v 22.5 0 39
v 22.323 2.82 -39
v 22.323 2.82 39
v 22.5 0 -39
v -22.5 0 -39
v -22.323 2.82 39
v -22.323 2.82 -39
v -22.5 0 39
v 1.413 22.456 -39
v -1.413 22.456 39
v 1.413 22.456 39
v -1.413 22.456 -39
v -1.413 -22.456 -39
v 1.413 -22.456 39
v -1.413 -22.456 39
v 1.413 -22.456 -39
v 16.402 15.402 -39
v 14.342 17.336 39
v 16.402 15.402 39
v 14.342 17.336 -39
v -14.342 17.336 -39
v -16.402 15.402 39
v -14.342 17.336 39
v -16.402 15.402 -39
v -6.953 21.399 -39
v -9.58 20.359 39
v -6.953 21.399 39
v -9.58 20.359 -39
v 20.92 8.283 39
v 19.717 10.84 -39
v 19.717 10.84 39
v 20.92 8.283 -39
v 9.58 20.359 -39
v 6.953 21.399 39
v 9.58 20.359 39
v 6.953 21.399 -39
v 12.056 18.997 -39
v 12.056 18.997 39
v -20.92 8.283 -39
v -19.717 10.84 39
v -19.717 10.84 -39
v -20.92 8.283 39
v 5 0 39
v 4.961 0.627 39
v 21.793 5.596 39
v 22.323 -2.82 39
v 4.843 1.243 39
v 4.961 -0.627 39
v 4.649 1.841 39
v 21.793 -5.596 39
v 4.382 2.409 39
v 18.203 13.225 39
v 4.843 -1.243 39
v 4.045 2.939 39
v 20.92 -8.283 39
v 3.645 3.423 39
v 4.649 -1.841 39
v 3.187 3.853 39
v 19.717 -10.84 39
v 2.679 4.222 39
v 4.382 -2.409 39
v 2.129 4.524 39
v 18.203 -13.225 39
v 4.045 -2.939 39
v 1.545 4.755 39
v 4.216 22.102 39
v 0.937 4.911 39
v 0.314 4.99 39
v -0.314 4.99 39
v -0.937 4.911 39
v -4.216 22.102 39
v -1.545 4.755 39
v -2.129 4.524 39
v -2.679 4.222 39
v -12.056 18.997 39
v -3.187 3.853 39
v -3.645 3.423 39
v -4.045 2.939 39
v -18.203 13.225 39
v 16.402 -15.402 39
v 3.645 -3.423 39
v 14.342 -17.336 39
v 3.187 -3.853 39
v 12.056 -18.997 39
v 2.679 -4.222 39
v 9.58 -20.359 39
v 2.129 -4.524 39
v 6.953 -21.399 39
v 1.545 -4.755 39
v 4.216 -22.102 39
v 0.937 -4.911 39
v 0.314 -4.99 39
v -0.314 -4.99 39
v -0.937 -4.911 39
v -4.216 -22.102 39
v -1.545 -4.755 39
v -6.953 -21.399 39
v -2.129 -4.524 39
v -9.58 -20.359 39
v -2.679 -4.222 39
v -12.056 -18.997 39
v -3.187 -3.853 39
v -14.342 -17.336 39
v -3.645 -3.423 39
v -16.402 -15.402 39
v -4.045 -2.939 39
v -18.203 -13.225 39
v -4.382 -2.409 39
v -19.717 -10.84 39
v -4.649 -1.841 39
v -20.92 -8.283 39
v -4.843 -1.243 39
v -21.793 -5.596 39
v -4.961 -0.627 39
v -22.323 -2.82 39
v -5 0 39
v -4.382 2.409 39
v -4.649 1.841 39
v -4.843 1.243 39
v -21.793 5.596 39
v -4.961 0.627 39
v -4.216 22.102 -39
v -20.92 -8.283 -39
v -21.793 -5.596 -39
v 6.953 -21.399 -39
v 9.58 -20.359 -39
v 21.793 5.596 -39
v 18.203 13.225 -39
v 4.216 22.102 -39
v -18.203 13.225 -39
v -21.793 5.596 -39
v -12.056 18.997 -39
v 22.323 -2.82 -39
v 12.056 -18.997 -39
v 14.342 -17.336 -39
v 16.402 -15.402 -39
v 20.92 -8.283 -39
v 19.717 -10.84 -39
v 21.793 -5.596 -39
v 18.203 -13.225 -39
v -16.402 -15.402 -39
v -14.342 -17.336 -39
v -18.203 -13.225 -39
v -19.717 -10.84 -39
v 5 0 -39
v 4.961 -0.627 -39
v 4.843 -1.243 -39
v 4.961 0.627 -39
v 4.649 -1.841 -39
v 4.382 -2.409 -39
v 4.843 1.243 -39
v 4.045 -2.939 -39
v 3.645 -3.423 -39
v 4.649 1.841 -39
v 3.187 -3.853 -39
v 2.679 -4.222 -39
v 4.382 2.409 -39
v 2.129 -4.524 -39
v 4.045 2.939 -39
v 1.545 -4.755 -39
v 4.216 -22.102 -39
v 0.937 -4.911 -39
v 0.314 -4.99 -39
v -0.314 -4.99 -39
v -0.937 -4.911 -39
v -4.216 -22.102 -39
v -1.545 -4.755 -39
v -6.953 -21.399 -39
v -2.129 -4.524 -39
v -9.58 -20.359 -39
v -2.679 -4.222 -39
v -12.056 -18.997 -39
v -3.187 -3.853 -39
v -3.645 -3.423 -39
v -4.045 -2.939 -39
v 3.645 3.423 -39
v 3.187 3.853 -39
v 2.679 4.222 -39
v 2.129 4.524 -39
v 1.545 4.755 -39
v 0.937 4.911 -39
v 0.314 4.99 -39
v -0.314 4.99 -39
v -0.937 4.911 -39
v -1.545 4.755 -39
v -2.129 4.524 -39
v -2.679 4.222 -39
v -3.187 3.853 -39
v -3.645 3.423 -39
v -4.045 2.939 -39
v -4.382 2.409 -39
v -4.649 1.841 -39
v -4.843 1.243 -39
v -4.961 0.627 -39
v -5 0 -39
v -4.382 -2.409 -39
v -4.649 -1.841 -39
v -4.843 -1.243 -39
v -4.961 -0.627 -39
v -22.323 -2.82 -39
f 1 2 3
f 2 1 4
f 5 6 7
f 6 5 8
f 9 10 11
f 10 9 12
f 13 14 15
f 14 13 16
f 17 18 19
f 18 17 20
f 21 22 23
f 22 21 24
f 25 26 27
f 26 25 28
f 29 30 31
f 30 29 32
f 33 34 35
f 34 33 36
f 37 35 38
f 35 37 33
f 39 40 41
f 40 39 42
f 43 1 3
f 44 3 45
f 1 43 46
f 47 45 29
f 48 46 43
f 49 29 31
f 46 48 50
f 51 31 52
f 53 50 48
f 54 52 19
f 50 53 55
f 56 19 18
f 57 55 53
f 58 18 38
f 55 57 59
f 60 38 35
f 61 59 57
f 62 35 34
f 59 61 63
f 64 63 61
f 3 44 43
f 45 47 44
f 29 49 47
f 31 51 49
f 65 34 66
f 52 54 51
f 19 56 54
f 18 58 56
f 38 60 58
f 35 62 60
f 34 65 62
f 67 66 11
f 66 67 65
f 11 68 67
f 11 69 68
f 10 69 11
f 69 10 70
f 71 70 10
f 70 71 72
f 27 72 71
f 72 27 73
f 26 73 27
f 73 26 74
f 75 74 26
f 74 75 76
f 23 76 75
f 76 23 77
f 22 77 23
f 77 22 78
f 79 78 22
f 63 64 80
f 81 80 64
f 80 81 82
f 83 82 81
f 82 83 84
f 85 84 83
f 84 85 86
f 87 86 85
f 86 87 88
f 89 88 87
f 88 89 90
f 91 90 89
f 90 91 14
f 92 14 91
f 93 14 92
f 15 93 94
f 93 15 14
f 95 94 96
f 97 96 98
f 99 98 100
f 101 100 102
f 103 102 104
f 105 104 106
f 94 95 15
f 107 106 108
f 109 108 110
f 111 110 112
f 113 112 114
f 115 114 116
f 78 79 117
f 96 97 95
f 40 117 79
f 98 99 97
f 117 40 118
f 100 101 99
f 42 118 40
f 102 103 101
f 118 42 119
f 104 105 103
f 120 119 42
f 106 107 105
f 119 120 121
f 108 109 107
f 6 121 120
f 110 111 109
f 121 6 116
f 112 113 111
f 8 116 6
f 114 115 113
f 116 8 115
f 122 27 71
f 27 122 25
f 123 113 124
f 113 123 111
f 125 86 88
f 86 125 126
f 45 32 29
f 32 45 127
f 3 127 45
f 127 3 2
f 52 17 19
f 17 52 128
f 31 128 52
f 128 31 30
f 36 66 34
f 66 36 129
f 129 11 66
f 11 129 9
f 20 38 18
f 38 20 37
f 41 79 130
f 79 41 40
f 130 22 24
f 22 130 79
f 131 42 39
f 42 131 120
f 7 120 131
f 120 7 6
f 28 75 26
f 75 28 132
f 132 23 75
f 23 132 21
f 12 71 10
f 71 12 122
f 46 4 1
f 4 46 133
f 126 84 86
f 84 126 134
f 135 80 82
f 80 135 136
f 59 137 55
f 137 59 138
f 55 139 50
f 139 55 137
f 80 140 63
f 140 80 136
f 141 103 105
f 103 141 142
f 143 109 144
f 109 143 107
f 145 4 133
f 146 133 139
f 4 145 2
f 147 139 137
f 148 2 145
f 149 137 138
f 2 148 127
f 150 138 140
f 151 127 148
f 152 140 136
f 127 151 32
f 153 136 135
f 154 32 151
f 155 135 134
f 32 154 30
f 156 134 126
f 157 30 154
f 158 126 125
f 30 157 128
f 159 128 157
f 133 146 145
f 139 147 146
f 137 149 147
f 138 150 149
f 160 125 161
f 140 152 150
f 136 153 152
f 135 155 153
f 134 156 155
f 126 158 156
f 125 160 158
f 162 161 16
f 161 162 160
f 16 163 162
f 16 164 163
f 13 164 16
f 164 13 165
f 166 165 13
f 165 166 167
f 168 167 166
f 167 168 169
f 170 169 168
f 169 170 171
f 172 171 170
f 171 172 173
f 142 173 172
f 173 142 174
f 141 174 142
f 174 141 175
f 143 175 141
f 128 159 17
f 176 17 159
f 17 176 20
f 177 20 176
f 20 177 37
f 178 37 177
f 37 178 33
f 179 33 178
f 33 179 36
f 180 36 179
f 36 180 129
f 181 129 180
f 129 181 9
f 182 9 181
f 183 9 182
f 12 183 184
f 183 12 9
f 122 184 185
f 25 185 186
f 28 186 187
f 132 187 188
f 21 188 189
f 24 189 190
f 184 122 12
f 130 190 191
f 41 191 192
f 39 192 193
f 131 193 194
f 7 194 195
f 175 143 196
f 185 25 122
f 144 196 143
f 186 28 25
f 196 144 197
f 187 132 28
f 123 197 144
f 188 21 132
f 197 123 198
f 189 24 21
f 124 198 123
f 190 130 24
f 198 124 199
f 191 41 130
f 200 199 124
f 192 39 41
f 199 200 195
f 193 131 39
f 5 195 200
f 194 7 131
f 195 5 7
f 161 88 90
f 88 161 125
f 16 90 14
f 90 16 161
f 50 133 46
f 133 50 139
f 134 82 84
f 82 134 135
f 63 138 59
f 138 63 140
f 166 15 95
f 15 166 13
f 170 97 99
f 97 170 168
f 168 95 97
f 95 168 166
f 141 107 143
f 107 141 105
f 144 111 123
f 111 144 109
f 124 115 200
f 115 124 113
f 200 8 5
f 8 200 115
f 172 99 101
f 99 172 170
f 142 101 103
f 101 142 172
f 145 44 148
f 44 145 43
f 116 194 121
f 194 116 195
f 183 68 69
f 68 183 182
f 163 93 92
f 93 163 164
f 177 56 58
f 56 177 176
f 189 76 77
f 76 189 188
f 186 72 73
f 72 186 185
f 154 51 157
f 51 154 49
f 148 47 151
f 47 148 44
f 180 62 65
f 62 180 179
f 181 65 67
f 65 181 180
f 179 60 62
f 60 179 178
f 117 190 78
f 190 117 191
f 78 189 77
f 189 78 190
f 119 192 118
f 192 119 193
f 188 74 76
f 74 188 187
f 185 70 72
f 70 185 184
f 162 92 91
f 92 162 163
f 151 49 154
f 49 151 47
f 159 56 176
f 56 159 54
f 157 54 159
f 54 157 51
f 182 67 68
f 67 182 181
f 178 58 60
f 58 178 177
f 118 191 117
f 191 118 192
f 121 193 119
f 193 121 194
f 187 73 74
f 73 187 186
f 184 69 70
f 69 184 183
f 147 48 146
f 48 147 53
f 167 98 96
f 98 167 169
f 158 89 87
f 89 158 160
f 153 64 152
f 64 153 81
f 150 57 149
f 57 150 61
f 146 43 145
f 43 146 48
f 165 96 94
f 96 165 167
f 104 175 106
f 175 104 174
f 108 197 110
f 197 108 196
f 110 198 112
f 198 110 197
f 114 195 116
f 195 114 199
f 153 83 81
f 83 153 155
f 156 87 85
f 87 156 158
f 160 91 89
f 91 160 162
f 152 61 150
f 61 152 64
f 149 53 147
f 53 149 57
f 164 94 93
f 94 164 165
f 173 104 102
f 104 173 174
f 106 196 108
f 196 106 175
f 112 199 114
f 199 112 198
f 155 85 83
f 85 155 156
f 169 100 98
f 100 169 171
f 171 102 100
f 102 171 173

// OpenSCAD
$fn = 50;


difference() {
	union() {
		translate(v = [0, 0, -39.0000000000]) {
			cylinder(h = 78, r = 22.5000000000);
		}
	}
	union() {
		translate(v = [0, 0, -100.0000000000]) {
			cylinder(h = 200, r = 5);
		}
	}
}
